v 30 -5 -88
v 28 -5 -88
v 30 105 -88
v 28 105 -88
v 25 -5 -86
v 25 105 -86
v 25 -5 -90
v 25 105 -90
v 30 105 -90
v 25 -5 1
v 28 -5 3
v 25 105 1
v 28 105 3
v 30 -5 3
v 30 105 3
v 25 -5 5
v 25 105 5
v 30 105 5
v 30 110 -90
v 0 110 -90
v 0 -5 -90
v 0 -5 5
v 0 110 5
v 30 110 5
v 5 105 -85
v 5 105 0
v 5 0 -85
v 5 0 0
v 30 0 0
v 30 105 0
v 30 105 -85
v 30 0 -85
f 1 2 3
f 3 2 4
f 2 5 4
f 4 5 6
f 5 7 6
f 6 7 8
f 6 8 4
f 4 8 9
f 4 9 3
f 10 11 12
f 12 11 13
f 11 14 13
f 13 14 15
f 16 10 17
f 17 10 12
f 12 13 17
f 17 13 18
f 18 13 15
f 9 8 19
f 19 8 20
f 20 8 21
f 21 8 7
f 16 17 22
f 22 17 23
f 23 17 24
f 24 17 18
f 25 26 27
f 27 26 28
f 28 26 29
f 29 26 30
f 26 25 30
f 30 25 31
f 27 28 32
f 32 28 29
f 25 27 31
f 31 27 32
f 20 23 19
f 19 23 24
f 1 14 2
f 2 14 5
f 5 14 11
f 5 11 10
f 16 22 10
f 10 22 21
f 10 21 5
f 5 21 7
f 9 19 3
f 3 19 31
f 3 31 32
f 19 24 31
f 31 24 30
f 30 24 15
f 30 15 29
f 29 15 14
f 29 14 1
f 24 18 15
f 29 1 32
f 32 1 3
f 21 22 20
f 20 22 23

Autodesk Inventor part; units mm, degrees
ref_plane "YZ Plane" through (0, 0, 0) normal (1, 0, 0) x (0, 1, 0)
ref_plane "XZ Plane" through (0, 0, 0) normal (0, 1, 0) x (-1, 0, 0)
ref_plane "XY Plane" through (0, 0, 0) normal (0, 0, 1) x (1, 0, 0)
sketch "Boceto1" plane through (0, 0, 0) normal (1, 0, 0) x (0, 1, 0)
  line L0 (0, 0) -> (105, 0)
  line L1 (105, 0) -> (105, -85)
  line L2 (105, -85) -> (0, -85)
  line L3 (0, -85) -> (0, 0)
  line L4 (110, 5) -> (-5, 5)
  line L5 (-5, 5) -> (-5, -90)
  line L6 (-5, -90) -> (110, -90)
  line L7 (110, -90) -> (110, 5)
  point P0 (105, -42.5)
  dimension "d0" = 85
  dimension "d1" = 105
  dimension "d2" = 5
  dimension "d3" = 5
  dimension "d4" = 5
  dimension "d5" = 5
extrude "Extrusión1" add sketch "Boceto1" along normal blind 30
extrude "Extrusión2" add sketch "Boceto1" along normal blind 5 contours L0 L1 L2 L3
sketch "Boceto2" plane through (0, -5, -90) normal (0, -1, 0) x (1, 0, 0)
  line L0 (0, 0) -> (30, 0) projected
  line L1 (30, 0) -> (30, 2)
  line L2 (30, 0) -> (30, 95) projected
  line L3 (28, 2) -> (25, 4)
  line L4 (25, 4) -> (25, 0)
  line L5 (25, 0) -> (30, 0)
  line L6 (30, 2) -> (28, 2)
  line L7 (37.2923, 47.5) -> (-11.4995, 47.5) construction
  line L8 (30, 95) -> (30, 93)
  line L9 (28, 93) -> (25, 91)
  line L10 (25, 91) -> (25, 95)
  line L11 (25, 95) -> (30, 95)
  line L12 (30, 93) -> (28, 93)
  point P0 (0, 90)
  point P1 (30, 47.5)
  point P2 (25, 0)
  dimension "d10" = 2
  dimension "d11" = 2
  dimension "d12" = 4
  dimension "d13" = 5
  dimension "d14" = 0
extrude "Extrusión3" cut sketch "Boceto2" against normal blind 110
properties part number "carcasa_pcb"
